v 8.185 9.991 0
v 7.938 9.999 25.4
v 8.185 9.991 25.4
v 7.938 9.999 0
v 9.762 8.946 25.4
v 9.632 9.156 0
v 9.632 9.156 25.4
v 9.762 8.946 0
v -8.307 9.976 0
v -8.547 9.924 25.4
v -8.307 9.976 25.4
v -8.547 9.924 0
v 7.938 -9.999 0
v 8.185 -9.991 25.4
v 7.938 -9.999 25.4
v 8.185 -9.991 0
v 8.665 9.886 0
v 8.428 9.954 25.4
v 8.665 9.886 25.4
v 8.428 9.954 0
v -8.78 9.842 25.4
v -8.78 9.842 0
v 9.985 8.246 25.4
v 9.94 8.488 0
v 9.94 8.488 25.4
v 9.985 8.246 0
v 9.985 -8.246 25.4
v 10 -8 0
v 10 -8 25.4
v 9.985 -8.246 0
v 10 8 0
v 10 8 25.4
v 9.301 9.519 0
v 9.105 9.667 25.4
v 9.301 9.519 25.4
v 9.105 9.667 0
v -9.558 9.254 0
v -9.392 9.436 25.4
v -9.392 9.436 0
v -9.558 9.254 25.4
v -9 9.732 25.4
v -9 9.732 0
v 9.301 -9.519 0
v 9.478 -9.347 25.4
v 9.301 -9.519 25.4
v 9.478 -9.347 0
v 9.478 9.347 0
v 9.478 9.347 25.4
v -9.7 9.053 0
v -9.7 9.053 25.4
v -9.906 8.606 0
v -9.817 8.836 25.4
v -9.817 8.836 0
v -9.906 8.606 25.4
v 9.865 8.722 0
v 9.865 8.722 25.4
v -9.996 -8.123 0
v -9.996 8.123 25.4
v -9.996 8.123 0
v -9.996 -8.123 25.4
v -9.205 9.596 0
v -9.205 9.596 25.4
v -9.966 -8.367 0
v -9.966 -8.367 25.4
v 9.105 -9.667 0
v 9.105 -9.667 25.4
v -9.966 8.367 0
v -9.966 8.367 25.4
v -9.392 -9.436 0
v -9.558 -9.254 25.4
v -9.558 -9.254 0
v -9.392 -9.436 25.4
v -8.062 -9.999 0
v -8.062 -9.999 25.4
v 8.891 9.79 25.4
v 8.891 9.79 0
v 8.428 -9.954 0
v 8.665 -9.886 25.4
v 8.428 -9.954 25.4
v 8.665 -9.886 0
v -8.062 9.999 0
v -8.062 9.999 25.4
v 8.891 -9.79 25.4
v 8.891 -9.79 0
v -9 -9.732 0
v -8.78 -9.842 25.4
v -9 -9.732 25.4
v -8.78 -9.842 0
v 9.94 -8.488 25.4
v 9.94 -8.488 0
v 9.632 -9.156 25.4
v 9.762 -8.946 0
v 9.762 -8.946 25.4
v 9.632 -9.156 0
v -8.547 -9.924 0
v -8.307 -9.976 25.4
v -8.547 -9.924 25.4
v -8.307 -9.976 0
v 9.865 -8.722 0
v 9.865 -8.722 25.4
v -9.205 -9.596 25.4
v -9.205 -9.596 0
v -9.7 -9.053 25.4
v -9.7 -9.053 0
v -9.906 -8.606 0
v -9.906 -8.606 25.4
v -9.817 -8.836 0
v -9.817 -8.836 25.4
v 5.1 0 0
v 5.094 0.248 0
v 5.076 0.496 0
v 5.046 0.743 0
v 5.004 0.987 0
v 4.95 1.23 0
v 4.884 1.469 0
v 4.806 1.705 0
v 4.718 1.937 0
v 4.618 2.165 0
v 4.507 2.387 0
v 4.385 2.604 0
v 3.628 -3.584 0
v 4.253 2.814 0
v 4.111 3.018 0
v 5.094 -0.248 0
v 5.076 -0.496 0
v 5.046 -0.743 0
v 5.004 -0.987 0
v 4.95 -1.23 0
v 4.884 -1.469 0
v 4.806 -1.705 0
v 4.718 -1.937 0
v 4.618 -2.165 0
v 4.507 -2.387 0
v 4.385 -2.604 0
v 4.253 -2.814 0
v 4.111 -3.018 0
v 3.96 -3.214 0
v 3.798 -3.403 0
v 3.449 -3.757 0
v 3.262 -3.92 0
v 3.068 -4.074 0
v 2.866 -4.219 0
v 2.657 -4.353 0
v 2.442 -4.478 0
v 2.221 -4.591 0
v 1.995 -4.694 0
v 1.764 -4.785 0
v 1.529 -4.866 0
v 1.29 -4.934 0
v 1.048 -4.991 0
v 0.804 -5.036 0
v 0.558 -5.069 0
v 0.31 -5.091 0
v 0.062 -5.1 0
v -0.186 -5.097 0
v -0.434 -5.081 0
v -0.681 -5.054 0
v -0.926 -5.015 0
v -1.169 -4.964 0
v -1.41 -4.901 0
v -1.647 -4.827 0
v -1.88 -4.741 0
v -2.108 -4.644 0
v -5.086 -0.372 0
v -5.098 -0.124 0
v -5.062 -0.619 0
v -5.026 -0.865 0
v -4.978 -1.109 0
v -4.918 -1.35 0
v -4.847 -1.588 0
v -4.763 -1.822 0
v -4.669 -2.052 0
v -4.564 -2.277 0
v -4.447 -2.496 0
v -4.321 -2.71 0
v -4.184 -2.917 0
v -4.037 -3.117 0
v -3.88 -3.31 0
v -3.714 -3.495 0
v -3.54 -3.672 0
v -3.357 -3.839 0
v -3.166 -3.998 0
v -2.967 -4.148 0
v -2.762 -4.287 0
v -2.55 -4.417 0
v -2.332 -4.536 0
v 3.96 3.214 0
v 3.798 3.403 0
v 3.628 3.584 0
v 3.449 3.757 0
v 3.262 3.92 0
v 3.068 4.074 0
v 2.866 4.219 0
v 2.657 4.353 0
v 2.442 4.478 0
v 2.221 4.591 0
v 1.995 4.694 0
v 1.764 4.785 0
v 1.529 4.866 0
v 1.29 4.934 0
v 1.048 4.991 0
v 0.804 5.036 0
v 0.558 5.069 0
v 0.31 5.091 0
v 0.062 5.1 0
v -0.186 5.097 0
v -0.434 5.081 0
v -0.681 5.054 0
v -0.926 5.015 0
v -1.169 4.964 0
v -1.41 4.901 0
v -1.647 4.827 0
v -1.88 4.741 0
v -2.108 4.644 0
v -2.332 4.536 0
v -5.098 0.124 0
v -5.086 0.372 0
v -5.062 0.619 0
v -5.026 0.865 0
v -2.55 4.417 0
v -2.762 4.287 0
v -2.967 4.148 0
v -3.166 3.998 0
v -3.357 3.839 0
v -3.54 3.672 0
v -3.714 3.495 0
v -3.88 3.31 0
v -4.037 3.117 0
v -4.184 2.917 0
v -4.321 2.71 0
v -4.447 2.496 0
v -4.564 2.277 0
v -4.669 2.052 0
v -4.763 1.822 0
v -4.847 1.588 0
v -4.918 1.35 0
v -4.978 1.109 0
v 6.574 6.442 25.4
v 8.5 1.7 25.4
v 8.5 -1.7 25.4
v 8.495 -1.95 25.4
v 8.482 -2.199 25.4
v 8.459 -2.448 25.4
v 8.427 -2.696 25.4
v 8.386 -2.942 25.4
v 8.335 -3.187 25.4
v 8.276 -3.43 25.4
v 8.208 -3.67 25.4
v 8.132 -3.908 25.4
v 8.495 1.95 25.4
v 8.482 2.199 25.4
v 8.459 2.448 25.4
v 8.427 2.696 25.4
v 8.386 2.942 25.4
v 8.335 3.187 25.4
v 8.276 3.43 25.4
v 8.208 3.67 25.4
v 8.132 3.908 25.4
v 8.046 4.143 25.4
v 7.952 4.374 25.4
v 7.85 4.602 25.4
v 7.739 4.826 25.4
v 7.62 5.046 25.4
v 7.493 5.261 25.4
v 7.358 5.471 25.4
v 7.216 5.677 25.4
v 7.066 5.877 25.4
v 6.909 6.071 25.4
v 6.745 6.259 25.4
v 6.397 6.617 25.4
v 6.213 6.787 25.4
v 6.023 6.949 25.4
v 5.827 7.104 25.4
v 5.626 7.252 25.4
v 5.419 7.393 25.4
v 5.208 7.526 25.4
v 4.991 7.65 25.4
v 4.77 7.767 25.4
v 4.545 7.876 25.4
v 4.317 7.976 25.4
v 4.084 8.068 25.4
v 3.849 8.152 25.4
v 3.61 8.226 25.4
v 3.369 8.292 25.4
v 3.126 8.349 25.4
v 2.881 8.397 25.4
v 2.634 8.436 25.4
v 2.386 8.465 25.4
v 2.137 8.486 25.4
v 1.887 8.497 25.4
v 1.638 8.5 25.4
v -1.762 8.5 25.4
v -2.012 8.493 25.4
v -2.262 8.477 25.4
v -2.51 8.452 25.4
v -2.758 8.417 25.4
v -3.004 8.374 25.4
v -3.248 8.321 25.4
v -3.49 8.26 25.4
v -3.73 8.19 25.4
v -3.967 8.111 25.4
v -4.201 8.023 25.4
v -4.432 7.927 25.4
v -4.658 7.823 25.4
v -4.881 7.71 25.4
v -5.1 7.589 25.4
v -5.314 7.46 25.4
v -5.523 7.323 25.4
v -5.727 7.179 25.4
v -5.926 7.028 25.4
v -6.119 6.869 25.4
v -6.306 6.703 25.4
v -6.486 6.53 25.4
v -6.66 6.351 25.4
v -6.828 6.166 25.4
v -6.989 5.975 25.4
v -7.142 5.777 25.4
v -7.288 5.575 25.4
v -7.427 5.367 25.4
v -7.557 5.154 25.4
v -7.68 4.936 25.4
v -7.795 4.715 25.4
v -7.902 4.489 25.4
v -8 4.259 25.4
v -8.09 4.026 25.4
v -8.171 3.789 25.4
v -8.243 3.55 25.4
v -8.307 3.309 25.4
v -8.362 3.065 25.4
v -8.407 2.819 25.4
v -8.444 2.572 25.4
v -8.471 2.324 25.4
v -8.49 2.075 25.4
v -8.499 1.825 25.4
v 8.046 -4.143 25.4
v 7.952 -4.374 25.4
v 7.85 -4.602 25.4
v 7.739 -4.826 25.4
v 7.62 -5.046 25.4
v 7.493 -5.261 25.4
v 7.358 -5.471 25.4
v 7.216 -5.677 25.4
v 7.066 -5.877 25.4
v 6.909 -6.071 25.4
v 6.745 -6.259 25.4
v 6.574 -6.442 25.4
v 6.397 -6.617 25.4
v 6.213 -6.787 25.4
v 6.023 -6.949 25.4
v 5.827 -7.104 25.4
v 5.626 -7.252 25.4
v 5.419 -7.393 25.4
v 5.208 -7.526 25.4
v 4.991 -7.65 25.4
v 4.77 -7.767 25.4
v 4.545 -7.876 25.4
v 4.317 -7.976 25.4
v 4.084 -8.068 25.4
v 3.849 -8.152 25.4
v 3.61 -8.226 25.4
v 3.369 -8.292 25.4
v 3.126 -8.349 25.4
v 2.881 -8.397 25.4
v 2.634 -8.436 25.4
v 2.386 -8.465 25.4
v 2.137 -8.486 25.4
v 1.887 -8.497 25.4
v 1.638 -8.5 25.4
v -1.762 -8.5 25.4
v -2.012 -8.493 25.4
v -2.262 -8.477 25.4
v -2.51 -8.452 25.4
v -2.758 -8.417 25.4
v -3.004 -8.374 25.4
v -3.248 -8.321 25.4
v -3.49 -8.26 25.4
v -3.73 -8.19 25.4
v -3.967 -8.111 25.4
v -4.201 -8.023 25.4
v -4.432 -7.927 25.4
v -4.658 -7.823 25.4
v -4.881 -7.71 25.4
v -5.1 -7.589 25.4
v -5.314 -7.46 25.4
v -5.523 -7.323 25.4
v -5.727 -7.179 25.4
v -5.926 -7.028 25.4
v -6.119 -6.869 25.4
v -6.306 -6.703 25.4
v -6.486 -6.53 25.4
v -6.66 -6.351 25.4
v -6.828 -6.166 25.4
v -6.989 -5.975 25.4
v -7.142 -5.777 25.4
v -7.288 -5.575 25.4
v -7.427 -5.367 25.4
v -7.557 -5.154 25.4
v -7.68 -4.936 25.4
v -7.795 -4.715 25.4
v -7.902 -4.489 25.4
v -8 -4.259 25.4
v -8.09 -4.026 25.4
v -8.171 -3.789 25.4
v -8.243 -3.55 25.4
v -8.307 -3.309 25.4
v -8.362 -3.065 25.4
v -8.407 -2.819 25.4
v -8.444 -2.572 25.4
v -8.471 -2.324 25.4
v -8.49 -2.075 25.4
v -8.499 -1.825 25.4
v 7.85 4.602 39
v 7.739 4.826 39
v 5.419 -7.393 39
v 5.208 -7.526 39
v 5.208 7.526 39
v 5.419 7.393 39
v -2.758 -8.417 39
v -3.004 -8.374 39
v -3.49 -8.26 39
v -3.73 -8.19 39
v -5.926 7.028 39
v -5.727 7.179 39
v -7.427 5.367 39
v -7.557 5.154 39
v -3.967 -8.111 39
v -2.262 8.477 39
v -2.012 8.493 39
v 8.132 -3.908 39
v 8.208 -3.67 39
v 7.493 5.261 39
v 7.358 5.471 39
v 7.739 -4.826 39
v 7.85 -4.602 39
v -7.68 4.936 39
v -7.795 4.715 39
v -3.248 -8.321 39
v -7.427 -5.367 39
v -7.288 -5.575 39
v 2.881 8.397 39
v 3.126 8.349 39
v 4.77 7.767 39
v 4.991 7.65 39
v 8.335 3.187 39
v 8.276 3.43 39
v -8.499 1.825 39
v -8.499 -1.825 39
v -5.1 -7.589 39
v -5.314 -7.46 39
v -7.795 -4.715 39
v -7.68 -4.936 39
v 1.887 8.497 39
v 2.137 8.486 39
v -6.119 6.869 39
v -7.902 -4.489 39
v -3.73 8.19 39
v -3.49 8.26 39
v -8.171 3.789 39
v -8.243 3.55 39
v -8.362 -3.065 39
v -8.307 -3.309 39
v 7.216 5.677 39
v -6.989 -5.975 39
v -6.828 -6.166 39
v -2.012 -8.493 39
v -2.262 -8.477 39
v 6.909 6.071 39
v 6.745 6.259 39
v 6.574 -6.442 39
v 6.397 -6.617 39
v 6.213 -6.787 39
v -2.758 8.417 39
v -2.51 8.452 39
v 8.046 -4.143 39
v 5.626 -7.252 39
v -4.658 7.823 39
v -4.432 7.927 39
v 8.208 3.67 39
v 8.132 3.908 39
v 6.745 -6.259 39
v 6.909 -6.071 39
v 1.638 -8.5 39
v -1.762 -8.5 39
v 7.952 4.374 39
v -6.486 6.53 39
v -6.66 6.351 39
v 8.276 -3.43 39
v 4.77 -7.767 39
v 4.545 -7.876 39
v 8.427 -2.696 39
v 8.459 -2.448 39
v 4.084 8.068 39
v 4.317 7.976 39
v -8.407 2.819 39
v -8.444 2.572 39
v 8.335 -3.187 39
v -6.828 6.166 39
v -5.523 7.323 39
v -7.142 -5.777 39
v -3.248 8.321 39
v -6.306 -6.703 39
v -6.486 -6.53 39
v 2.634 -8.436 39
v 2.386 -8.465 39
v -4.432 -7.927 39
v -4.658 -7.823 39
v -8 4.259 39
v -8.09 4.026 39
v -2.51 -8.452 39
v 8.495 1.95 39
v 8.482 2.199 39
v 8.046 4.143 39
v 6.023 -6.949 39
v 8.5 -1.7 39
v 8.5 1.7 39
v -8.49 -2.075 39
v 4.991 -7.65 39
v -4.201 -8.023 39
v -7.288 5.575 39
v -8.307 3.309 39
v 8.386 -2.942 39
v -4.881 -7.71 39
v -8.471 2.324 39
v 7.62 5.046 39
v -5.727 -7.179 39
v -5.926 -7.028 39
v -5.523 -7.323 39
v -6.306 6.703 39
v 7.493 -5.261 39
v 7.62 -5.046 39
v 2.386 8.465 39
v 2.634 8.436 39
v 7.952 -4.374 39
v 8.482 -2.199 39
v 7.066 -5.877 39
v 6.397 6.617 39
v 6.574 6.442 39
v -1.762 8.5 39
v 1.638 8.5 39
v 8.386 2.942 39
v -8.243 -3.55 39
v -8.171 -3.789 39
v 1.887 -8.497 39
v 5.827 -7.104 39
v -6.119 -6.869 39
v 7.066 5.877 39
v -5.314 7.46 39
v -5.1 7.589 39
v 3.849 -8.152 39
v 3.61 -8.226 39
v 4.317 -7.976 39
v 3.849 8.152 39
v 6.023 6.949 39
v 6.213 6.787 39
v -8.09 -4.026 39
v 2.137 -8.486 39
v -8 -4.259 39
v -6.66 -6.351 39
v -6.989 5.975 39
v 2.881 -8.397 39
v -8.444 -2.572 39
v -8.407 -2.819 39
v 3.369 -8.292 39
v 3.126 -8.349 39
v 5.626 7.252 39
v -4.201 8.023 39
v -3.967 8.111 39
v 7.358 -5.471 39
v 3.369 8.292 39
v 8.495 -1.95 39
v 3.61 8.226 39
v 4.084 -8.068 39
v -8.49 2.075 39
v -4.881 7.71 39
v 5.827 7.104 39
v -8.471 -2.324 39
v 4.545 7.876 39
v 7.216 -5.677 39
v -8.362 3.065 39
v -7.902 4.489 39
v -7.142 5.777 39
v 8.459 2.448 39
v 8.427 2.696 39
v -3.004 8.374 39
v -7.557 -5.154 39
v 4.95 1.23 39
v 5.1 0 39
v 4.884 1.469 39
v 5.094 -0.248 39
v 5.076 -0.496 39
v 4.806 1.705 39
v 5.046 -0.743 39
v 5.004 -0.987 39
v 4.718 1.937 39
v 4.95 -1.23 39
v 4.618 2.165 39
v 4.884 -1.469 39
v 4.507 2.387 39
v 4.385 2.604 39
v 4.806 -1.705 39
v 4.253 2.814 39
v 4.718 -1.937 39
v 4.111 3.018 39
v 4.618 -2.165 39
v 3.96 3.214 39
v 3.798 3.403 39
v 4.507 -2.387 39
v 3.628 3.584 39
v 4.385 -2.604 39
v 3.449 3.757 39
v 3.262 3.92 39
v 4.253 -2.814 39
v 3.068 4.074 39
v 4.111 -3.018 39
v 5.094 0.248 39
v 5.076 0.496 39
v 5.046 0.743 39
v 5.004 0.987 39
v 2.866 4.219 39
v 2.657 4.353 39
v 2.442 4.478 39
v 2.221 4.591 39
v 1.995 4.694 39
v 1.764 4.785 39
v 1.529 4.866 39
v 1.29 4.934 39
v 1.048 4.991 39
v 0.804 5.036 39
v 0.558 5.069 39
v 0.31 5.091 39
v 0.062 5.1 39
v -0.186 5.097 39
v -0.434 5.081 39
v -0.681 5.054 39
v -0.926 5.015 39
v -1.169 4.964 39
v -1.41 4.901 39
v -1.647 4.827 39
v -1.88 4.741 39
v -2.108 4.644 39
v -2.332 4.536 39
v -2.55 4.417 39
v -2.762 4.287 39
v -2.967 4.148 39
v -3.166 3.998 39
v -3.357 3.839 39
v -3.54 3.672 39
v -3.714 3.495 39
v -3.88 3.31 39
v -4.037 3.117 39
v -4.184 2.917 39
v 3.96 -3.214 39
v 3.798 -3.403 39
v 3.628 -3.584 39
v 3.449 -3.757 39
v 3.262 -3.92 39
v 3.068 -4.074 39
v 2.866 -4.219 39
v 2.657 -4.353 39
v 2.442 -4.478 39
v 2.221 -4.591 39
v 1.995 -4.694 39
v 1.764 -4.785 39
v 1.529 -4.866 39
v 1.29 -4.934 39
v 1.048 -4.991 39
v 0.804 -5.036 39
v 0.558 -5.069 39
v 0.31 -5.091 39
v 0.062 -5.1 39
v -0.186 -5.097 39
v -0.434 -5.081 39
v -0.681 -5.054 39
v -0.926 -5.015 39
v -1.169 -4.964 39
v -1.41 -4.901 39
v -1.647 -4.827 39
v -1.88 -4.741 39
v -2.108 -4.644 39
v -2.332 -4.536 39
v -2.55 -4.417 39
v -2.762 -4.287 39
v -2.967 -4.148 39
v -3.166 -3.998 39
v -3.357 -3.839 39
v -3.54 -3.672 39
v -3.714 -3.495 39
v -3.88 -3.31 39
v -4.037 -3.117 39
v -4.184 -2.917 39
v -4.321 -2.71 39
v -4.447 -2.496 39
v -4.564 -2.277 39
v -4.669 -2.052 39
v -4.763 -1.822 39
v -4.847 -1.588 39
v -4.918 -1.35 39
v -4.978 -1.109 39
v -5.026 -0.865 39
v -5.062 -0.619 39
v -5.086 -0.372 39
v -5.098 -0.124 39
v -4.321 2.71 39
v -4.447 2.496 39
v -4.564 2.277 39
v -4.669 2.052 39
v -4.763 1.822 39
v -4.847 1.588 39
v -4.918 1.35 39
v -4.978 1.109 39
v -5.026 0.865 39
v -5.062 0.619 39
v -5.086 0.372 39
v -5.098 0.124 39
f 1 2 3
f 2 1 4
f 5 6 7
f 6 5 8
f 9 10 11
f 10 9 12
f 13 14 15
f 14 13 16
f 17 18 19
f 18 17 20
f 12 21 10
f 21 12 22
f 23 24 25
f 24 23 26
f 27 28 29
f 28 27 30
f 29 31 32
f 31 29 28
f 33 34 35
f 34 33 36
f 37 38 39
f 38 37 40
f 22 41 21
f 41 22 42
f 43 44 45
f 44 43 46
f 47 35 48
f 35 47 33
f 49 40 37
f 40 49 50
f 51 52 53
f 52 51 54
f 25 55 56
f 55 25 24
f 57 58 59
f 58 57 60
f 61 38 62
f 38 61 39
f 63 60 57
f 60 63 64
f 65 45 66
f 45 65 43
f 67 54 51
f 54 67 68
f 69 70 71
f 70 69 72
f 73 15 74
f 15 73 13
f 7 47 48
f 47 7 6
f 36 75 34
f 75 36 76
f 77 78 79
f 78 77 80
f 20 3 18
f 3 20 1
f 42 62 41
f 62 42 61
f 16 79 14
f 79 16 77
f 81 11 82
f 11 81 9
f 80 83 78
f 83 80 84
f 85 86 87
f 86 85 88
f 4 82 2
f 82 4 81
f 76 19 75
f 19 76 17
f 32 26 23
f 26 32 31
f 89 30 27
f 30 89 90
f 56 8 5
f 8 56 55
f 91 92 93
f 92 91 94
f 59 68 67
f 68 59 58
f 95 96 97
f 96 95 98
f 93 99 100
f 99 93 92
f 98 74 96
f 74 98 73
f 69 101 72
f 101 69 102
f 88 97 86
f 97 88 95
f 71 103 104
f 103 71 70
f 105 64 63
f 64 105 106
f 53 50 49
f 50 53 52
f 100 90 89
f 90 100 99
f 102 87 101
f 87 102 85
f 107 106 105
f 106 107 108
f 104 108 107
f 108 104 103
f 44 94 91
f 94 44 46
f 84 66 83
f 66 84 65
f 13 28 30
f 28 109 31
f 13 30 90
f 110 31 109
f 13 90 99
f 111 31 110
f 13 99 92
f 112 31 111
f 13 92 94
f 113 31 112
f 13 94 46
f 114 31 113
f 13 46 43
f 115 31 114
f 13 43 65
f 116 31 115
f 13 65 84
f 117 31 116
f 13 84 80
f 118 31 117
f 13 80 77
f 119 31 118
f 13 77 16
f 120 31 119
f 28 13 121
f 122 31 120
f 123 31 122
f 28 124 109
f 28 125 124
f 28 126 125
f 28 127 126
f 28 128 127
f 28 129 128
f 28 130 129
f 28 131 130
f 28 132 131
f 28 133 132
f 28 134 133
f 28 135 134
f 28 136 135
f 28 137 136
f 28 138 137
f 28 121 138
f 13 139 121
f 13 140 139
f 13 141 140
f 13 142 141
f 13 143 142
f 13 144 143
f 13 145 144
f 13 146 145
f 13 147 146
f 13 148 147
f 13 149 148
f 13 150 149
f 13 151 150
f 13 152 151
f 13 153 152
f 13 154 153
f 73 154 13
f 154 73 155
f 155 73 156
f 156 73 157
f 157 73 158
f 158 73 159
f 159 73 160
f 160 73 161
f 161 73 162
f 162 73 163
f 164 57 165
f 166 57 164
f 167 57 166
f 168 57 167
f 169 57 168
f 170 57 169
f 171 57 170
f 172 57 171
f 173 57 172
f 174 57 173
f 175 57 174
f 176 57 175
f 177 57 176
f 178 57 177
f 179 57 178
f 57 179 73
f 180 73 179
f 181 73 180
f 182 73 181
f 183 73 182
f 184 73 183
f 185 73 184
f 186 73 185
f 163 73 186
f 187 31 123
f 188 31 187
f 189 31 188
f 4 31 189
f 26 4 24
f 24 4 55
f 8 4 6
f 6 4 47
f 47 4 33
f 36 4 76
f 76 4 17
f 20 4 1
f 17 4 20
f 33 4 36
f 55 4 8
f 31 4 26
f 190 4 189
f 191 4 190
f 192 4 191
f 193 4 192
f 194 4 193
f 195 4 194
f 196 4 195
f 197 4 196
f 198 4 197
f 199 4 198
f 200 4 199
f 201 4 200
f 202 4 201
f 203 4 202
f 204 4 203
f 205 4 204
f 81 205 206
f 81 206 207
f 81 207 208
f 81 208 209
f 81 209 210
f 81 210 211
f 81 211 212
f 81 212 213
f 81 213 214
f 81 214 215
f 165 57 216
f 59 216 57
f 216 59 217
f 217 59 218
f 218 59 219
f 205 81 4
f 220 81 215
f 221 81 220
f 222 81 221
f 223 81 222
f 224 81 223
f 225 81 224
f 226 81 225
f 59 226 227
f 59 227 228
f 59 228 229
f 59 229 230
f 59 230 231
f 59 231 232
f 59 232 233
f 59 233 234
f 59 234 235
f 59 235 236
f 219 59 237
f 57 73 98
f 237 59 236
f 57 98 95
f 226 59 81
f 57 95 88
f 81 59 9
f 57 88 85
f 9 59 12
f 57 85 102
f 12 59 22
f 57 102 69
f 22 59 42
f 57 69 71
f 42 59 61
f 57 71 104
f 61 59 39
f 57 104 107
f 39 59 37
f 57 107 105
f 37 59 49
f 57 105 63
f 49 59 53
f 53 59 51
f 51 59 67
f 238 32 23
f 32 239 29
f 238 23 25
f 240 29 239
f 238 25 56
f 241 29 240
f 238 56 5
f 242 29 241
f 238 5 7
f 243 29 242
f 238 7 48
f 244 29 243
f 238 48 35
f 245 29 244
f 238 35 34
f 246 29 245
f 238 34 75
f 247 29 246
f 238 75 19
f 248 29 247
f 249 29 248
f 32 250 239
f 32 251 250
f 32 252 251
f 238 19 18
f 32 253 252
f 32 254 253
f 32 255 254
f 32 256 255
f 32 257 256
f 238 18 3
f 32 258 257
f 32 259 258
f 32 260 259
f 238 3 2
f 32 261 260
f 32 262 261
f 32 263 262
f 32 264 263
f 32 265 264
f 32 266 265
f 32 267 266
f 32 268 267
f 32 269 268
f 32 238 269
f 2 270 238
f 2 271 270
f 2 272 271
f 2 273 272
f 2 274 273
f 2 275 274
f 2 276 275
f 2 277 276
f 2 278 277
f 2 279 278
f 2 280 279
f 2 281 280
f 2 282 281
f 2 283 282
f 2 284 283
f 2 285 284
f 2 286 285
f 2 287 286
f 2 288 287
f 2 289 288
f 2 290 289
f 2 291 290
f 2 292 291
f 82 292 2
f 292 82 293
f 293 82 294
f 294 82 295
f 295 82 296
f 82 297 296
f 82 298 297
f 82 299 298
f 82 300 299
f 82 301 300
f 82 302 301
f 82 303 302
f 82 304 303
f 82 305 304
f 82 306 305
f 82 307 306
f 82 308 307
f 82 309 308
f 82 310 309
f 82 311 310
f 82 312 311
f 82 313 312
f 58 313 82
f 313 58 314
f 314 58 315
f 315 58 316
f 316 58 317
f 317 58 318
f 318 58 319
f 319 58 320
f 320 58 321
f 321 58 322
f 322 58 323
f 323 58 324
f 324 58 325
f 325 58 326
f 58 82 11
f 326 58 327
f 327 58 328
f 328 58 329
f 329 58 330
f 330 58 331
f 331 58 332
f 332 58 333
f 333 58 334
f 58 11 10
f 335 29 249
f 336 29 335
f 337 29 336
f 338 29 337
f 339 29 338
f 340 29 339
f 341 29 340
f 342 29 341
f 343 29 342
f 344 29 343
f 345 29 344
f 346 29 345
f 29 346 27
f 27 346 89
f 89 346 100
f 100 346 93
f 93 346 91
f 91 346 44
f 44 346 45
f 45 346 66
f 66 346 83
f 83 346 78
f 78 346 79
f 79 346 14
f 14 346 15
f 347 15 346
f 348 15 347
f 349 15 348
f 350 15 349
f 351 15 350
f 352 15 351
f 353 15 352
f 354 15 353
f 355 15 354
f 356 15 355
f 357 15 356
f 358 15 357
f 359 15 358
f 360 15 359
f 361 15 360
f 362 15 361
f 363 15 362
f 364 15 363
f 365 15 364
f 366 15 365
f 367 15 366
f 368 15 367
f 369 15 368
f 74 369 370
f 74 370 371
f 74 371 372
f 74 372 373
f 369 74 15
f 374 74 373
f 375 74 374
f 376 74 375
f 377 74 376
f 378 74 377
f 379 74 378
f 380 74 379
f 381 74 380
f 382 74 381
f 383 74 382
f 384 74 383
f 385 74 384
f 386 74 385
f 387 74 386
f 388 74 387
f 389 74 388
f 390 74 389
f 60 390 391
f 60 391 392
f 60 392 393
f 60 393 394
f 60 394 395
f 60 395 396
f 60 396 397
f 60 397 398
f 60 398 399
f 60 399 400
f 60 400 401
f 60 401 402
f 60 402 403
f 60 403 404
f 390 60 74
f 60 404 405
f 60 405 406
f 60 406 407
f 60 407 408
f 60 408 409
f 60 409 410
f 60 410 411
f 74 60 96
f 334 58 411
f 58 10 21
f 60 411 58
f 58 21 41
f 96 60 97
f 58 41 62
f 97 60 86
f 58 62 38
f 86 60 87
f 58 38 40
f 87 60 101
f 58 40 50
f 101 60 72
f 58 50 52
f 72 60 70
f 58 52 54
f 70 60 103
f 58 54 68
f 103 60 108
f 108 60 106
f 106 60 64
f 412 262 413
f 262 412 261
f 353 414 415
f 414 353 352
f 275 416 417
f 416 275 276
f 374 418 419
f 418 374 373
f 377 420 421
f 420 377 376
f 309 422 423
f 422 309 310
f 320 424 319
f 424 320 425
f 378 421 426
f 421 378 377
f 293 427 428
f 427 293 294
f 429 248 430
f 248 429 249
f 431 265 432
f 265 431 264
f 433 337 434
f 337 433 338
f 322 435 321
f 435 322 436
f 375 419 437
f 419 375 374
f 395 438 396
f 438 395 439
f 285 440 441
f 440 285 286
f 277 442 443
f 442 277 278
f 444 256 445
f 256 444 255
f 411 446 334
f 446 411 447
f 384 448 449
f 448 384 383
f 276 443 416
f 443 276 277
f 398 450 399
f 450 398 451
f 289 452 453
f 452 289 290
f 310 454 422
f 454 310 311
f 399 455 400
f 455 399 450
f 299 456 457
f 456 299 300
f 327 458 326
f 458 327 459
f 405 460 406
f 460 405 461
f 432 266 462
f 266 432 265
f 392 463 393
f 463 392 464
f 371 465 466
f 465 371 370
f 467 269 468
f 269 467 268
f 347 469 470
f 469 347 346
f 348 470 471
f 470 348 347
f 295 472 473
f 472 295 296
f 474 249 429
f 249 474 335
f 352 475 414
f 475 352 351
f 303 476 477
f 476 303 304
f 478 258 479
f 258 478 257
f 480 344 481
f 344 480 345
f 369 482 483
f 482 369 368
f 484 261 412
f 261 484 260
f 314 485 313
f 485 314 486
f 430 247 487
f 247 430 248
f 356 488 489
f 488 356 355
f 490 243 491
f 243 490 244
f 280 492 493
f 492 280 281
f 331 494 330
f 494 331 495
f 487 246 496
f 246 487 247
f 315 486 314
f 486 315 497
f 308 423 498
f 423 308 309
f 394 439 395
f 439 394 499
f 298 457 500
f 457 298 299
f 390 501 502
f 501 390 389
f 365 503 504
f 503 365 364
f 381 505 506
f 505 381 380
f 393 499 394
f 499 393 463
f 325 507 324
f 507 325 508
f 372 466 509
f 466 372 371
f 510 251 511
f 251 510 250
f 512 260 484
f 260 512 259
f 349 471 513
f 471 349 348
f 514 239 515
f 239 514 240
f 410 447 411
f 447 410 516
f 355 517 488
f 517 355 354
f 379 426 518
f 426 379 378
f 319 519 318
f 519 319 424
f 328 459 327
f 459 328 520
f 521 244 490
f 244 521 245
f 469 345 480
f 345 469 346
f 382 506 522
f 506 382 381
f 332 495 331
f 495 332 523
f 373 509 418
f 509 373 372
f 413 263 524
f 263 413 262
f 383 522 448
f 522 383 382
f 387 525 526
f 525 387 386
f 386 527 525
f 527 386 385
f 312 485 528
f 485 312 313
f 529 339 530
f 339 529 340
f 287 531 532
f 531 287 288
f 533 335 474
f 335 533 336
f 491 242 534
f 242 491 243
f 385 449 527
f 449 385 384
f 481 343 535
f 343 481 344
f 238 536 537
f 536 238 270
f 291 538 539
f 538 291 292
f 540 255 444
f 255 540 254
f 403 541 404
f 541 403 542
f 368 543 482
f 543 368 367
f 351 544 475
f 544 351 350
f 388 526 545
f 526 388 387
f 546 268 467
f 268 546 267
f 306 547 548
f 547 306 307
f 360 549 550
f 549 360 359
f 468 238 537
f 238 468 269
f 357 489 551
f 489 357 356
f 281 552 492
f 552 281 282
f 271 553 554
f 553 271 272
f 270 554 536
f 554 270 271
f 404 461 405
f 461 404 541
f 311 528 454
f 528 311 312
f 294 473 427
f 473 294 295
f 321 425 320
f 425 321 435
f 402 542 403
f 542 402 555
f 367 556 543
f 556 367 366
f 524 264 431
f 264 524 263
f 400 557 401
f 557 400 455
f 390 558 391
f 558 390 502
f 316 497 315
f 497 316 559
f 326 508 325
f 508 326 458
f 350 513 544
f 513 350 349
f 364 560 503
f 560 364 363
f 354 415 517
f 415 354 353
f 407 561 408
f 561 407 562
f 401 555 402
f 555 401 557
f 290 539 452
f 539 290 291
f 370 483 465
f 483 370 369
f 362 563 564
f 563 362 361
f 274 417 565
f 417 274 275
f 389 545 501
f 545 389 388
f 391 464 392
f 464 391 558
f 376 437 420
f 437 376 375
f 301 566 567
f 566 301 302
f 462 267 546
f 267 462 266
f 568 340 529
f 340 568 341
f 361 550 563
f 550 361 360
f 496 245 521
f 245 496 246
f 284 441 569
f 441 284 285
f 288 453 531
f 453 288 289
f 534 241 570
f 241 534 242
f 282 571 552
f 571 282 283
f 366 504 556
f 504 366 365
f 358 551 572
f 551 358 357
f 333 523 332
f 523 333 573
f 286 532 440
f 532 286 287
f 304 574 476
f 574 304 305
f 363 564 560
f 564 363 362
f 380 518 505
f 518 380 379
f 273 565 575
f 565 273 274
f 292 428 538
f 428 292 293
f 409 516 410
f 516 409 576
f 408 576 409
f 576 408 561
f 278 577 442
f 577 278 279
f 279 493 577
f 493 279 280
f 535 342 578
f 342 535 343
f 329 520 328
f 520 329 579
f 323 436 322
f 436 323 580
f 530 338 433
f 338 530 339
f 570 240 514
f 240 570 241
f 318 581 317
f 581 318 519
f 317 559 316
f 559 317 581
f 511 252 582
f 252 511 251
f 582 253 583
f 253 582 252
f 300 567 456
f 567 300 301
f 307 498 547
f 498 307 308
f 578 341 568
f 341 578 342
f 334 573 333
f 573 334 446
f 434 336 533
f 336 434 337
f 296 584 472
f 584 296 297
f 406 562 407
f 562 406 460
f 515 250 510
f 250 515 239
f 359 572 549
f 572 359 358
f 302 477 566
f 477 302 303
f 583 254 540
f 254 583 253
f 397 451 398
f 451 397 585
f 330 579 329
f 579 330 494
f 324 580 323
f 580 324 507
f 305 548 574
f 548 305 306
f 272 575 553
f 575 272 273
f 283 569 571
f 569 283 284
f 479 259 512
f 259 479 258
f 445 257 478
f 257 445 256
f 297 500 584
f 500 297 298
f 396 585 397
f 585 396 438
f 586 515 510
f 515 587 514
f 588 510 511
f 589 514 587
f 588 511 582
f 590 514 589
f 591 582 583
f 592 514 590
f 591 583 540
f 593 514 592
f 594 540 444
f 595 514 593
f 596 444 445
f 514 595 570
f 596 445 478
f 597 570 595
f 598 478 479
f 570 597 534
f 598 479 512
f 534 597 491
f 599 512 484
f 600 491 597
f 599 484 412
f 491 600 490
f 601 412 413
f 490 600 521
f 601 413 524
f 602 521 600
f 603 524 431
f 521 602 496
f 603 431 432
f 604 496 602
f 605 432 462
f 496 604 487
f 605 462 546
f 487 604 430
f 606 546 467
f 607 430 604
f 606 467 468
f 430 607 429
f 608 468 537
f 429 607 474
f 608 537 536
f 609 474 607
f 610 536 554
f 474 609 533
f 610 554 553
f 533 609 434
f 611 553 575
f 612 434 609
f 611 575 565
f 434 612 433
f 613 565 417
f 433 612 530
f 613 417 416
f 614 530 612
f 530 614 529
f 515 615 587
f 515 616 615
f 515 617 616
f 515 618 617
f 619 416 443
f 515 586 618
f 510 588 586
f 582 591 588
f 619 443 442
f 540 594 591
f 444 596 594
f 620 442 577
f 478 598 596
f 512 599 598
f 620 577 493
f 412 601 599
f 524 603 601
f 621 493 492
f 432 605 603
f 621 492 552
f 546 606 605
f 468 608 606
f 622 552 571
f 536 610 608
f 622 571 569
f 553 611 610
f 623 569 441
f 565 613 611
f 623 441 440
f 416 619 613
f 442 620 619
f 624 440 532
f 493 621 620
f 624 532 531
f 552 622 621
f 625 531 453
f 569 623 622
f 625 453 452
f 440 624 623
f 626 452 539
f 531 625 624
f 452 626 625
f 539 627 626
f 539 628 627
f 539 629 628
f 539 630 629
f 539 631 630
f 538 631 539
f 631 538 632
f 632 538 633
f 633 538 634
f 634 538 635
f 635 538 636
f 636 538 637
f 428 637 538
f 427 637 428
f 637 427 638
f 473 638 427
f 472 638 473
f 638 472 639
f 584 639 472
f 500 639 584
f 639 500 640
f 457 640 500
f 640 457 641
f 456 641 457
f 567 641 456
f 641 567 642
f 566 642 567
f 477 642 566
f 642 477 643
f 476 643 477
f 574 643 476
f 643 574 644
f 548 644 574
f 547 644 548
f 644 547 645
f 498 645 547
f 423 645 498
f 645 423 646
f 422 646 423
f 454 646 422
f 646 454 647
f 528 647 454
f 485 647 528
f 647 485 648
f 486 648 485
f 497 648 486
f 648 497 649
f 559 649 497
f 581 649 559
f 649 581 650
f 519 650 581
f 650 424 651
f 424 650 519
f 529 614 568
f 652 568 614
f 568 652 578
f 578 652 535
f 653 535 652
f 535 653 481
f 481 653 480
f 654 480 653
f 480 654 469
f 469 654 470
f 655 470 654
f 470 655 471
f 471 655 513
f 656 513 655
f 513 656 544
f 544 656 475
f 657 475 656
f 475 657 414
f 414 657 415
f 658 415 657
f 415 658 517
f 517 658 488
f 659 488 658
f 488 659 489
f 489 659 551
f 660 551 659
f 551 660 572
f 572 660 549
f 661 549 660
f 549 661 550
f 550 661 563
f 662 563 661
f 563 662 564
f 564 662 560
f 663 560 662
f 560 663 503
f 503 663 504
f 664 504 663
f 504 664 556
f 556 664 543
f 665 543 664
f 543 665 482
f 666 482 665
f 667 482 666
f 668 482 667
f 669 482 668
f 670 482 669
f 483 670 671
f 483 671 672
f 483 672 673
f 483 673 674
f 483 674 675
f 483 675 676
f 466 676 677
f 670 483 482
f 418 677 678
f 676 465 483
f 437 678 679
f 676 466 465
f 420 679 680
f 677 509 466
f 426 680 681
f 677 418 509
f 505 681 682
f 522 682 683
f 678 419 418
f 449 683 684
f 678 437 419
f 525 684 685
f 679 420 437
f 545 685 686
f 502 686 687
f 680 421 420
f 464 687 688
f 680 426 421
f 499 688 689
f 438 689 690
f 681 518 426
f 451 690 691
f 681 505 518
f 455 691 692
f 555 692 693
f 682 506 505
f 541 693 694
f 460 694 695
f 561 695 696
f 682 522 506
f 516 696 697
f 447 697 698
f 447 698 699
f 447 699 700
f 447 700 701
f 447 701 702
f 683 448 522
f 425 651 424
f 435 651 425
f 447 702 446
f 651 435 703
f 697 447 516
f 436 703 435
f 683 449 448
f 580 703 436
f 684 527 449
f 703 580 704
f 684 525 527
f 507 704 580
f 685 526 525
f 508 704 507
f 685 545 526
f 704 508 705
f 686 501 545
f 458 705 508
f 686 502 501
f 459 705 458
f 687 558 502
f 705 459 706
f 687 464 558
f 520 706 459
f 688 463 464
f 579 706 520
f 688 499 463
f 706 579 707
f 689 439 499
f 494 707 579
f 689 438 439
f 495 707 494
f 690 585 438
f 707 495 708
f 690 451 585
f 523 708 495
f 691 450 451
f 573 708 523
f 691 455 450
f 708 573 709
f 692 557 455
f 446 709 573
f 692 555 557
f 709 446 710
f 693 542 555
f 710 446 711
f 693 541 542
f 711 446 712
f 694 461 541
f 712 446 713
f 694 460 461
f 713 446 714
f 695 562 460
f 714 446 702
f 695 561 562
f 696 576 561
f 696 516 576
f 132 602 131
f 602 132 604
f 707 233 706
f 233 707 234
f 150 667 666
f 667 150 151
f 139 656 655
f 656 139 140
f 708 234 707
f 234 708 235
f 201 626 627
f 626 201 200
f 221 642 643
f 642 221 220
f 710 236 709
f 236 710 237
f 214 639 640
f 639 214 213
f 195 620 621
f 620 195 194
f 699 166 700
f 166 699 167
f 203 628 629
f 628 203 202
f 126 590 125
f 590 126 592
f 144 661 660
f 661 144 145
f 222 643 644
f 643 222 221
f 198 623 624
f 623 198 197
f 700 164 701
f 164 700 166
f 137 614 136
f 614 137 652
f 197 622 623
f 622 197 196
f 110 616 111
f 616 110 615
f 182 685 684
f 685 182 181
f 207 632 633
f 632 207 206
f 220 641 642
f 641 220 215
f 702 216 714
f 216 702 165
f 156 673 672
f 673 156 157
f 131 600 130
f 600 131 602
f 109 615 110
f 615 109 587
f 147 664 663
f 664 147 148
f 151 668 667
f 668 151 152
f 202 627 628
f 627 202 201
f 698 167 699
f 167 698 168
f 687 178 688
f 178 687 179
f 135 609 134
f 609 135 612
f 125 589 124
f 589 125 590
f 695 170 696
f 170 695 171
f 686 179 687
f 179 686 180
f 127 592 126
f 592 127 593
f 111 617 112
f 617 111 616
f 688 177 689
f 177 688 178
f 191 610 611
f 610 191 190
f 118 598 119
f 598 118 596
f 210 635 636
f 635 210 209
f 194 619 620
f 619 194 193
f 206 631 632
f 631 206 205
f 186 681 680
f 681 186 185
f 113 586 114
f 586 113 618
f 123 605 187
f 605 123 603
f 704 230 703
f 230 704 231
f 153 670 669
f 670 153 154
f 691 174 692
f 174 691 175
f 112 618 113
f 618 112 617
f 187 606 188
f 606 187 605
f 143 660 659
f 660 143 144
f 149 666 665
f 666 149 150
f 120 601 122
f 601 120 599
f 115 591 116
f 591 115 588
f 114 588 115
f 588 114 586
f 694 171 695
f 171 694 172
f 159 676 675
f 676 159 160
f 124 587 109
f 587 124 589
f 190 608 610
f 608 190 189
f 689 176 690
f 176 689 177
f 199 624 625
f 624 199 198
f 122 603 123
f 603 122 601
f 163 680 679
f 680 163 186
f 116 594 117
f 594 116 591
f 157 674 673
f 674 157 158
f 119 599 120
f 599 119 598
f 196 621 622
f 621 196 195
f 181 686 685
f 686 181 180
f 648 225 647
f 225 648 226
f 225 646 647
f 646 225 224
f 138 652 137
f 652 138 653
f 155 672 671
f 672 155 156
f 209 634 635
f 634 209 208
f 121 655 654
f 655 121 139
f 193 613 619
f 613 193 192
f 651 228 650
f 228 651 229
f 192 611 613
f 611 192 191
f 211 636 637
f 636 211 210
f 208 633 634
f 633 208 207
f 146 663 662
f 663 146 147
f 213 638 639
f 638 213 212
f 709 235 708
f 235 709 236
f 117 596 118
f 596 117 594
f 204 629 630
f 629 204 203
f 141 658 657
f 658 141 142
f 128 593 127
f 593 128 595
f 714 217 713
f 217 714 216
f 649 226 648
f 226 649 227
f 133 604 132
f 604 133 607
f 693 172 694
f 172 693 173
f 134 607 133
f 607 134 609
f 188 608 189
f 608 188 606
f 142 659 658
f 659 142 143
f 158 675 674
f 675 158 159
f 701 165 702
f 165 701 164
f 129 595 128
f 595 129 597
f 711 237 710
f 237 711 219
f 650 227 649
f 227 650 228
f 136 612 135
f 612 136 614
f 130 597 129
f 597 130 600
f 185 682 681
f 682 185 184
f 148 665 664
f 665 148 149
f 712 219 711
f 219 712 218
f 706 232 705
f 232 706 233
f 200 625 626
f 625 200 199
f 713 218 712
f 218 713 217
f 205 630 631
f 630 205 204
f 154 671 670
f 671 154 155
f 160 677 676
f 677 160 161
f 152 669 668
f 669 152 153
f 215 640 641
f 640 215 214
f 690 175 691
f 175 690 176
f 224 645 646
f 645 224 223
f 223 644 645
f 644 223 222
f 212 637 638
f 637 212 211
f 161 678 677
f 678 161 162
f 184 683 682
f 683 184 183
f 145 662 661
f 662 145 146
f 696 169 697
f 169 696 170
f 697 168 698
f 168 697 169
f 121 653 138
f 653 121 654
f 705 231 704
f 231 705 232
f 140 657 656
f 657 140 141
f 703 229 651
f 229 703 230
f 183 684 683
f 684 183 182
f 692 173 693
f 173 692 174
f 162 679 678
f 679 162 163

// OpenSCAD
// values for making smooth arcs
$fa = 2;
$fs = 0.25;

function inchesToMilliMeters(inches) = inches * 25.4;

// ** change these values for a different sized tubing **
square_tubing_dimension_in_mm = 20;
square_tubing_inner_dimension_in_mm = 17;
footing_height_in_mm = inchesToMilliMeters(1);

module rounded_corner_rect(size, center=[0,0,0], r=1){
    if (r <= 0) { unrounded_corner_rect(size, center); }
    x = size[0];
    y = size[1];
    z = size[2];
   translate([center[0]-x*0.5+r, center[1]-y*0.5+r, center[2]-z*0.5]) {
        minkowski(){
            cube([x-2*r, y-2*r, z/2]);
            cylinder(r=r,h=z/2);
        }
    }
}

module unrounded_corner_rect(size, center=[0,0,0]){
    x = size[0];
    y = size[1];
    z = size[2];
    translate([center[0]-x*0.5, center[1]-y*0.5, center[2]-z*0.5]) {
        cube([x, y, z]);
    }
}

difference() {
    group() {
        dimension = square_tubing_dimension_in_mm;
        rounded_corner_rect(size=[dimension,dimension,footing_height_in_mm], center=[0,0,footing_height_in_mm*0.5], r=dimension*0.1);
   
        dimension2 = square_tubing_inner_dimension_in_mm;
        top_height = dimension2*0.8;
        rounded_corner_rect(size=[dimension2,dimension2,top_height], center=[0,0,footing_height_in_mm+top_height*0.5], r=dimension2*0.4);
    }
    cylinder(h=(footing_height_in_mm+square_tubing_inner_dimension_in_mm)*2.0, d=square_tubing_inner_dimension_in_mm*0.6, center=true);
}
